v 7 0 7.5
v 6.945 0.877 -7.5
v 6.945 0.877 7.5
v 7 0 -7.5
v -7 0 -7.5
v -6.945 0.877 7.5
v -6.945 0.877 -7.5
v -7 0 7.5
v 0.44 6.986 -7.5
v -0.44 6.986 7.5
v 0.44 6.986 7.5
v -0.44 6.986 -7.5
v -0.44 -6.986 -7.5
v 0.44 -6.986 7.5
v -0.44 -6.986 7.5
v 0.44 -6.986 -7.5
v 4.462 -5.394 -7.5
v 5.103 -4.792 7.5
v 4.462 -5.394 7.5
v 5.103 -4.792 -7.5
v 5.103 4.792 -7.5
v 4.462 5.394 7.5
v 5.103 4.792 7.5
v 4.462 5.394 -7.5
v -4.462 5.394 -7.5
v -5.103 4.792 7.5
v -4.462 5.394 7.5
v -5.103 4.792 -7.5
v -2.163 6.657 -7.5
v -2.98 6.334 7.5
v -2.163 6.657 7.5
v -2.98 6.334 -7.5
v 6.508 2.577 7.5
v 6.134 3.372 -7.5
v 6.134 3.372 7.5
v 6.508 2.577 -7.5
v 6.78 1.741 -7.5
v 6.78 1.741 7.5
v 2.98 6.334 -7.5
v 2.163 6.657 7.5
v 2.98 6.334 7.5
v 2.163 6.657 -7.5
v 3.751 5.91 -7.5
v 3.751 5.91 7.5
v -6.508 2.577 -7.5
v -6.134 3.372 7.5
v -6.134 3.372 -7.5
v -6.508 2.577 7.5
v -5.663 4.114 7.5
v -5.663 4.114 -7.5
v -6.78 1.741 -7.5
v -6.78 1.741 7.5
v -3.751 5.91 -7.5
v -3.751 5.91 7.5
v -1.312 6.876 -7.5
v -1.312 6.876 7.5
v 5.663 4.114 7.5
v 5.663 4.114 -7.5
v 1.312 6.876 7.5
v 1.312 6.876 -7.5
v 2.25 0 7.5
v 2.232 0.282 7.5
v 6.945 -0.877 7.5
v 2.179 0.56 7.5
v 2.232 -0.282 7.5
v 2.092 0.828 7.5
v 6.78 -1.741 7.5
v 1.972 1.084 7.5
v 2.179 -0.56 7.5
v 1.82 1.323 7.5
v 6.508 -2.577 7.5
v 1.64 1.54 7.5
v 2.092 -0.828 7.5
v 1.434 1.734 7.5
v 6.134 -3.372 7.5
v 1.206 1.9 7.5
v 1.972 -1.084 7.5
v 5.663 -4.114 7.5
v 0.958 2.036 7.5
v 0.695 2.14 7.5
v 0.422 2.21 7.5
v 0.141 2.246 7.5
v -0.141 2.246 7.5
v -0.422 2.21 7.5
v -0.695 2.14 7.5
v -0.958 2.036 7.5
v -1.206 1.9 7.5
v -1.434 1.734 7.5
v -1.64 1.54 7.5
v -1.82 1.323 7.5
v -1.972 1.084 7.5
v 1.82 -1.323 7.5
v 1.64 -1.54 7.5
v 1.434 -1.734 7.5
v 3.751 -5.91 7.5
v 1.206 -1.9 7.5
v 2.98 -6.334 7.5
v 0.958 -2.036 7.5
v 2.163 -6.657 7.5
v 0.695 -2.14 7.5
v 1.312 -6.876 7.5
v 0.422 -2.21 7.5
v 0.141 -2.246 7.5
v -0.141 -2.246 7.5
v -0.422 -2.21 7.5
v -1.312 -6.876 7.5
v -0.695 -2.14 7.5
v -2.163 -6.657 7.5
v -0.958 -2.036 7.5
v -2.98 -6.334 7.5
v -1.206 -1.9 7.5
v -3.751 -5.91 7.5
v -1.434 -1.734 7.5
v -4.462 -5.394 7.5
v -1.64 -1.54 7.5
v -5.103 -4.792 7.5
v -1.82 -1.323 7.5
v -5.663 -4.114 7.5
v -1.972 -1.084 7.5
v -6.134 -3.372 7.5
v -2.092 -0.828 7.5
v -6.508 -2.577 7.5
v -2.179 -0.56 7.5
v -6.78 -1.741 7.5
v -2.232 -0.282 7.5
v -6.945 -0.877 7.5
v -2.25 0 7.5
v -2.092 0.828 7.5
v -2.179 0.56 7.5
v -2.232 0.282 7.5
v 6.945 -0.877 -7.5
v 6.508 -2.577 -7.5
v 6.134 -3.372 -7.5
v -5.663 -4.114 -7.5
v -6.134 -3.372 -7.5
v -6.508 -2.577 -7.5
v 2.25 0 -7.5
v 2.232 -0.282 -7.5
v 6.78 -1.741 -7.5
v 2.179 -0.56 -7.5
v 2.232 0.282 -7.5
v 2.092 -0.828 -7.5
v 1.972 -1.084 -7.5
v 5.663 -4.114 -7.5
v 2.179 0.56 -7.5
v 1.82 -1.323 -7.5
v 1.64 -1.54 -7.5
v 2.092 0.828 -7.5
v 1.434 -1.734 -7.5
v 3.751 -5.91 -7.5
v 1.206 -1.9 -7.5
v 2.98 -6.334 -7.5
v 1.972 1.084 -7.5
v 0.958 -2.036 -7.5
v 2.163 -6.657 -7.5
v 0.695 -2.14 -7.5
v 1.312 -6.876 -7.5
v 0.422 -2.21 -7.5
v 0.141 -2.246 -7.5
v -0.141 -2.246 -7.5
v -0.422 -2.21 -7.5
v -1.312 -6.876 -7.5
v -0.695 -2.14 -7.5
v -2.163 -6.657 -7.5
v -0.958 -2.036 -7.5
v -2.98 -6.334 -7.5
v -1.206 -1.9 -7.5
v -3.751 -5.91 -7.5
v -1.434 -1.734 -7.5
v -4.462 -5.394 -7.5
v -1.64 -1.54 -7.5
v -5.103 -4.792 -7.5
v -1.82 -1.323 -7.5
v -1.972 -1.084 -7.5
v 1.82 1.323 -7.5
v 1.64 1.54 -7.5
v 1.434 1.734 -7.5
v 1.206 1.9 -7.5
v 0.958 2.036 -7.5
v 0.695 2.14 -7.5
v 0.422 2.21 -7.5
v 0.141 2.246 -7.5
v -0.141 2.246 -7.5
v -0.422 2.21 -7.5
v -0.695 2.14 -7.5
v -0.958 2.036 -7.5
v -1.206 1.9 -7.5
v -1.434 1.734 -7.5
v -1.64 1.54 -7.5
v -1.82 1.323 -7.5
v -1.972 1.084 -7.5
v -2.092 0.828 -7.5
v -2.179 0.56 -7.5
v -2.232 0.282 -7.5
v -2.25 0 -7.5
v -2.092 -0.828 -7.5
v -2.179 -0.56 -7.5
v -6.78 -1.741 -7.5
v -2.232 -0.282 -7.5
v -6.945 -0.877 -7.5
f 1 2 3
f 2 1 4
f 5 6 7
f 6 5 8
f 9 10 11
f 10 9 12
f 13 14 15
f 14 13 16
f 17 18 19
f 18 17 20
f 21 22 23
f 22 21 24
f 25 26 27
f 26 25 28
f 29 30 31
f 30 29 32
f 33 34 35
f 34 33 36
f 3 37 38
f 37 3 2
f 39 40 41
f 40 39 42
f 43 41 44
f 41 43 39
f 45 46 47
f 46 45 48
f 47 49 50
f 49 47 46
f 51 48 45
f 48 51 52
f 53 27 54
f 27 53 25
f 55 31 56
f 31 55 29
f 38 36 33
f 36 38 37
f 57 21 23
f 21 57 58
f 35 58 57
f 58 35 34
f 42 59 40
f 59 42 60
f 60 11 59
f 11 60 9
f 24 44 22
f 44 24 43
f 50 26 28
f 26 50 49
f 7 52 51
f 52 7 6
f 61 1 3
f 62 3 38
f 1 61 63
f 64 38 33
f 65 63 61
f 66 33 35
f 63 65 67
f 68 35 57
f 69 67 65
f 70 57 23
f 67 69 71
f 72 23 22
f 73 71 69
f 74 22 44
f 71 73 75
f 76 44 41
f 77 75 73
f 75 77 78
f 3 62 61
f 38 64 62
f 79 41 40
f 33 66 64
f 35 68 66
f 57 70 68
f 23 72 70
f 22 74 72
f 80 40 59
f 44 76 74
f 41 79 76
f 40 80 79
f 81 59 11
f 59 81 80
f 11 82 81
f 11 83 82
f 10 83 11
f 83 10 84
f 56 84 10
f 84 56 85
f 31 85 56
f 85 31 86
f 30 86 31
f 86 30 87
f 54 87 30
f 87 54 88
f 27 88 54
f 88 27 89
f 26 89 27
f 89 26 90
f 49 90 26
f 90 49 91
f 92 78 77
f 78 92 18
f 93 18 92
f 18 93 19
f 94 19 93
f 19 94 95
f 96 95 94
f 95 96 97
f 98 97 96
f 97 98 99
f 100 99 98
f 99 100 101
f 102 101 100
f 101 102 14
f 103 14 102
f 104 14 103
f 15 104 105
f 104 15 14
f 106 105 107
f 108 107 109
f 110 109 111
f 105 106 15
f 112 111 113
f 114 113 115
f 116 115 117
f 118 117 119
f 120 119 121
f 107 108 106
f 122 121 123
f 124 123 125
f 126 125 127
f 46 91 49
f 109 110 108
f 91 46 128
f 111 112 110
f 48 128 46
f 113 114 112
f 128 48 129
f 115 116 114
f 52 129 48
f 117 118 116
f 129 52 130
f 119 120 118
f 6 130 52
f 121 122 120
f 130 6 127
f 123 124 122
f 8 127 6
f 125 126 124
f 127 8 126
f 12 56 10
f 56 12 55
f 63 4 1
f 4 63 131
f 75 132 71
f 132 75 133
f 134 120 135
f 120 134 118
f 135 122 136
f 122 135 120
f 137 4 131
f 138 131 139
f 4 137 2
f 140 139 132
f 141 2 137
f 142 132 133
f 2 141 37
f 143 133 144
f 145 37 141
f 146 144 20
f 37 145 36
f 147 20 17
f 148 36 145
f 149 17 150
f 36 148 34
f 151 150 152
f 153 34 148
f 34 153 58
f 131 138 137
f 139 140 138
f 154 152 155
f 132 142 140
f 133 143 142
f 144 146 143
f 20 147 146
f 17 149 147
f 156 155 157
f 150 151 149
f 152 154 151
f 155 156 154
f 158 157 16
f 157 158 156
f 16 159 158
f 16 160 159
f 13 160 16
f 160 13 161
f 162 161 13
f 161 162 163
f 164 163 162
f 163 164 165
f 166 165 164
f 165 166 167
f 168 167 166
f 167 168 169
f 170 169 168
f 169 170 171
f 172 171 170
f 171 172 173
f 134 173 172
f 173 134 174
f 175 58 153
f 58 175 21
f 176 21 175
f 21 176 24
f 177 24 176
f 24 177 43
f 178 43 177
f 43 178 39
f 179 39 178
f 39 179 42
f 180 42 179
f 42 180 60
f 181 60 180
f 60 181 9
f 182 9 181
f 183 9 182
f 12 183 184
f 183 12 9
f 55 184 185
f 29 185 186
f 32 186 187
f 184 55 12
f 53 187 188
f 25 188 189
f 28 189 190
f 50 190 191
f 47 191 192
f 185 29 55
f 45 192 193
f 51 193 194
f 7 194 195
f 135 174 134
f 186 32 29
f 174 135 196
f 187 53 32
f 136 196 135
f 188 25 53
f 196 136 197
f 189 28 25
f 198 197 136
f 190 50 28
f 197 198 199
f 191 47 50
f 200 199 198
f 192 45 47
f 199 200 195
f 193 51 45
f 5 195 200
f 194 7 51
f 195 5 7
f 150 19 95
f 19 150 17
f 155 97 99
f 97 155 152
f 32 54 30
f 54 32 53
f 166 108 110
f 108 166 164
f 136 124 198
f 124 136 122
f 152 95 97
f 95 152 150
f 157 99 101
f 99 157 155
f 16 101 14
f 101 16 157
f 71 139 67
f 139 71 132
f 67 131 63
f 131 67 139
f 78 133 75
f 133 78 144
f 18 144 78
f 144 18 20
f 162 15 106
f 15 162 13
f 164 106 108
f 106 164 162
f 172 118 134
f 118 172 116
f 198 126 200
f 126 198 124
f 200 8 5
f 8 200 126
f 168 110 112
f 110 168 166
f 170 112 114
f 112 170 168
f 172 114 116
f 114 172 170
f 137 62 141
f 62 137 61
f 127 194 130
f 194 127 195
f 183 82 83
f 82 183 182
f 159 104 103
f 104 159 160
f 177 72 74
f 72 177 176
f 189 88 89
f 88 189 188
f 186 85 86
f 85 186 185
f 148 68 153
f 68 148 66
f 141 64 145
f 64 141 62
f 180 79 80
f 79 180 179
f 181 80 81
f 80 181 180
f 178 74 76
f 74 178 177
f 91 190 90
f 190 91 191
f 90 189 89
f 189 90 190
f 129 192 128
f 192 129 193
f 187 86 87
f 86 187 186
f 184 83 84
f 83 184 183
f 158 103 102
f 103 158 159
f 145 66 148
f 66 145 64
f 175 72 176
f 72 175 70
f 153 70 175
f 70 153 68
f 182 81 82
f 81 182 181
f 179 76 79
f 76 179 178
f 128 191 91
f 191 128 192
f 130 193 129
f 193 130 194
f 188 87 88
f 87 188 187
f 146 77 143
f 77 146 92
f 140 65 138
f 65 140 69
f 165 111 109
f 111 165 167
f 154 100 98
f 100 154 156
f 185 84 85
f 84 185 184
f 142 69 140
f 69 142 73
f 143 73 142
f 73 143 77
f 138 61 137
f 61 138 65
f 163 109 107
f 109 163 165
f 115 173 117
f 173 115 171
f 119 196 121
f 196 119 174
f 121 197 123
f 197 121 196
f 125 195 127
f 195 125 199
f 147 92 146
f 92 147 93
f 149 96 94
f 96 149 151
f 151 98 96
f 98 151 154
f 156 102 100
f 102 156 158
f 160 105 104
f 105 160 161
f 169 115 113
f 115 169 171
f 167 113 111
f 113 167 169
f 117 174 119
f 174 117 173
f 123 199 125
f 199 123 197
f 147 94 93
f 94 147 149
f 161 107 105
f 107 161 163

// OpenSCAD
$fn = 50;


difference() {
	union() {
		translate(v = [0, 0, -7.5000000000]) {
			cylinder(h = 15, r = 7.0000000000);
		}
	}
	union() {
		translate(v = [0, 0, -100.0000000000]) {
			cylinder(h = 200, r = 2.2500000000);
		}
	}
}
